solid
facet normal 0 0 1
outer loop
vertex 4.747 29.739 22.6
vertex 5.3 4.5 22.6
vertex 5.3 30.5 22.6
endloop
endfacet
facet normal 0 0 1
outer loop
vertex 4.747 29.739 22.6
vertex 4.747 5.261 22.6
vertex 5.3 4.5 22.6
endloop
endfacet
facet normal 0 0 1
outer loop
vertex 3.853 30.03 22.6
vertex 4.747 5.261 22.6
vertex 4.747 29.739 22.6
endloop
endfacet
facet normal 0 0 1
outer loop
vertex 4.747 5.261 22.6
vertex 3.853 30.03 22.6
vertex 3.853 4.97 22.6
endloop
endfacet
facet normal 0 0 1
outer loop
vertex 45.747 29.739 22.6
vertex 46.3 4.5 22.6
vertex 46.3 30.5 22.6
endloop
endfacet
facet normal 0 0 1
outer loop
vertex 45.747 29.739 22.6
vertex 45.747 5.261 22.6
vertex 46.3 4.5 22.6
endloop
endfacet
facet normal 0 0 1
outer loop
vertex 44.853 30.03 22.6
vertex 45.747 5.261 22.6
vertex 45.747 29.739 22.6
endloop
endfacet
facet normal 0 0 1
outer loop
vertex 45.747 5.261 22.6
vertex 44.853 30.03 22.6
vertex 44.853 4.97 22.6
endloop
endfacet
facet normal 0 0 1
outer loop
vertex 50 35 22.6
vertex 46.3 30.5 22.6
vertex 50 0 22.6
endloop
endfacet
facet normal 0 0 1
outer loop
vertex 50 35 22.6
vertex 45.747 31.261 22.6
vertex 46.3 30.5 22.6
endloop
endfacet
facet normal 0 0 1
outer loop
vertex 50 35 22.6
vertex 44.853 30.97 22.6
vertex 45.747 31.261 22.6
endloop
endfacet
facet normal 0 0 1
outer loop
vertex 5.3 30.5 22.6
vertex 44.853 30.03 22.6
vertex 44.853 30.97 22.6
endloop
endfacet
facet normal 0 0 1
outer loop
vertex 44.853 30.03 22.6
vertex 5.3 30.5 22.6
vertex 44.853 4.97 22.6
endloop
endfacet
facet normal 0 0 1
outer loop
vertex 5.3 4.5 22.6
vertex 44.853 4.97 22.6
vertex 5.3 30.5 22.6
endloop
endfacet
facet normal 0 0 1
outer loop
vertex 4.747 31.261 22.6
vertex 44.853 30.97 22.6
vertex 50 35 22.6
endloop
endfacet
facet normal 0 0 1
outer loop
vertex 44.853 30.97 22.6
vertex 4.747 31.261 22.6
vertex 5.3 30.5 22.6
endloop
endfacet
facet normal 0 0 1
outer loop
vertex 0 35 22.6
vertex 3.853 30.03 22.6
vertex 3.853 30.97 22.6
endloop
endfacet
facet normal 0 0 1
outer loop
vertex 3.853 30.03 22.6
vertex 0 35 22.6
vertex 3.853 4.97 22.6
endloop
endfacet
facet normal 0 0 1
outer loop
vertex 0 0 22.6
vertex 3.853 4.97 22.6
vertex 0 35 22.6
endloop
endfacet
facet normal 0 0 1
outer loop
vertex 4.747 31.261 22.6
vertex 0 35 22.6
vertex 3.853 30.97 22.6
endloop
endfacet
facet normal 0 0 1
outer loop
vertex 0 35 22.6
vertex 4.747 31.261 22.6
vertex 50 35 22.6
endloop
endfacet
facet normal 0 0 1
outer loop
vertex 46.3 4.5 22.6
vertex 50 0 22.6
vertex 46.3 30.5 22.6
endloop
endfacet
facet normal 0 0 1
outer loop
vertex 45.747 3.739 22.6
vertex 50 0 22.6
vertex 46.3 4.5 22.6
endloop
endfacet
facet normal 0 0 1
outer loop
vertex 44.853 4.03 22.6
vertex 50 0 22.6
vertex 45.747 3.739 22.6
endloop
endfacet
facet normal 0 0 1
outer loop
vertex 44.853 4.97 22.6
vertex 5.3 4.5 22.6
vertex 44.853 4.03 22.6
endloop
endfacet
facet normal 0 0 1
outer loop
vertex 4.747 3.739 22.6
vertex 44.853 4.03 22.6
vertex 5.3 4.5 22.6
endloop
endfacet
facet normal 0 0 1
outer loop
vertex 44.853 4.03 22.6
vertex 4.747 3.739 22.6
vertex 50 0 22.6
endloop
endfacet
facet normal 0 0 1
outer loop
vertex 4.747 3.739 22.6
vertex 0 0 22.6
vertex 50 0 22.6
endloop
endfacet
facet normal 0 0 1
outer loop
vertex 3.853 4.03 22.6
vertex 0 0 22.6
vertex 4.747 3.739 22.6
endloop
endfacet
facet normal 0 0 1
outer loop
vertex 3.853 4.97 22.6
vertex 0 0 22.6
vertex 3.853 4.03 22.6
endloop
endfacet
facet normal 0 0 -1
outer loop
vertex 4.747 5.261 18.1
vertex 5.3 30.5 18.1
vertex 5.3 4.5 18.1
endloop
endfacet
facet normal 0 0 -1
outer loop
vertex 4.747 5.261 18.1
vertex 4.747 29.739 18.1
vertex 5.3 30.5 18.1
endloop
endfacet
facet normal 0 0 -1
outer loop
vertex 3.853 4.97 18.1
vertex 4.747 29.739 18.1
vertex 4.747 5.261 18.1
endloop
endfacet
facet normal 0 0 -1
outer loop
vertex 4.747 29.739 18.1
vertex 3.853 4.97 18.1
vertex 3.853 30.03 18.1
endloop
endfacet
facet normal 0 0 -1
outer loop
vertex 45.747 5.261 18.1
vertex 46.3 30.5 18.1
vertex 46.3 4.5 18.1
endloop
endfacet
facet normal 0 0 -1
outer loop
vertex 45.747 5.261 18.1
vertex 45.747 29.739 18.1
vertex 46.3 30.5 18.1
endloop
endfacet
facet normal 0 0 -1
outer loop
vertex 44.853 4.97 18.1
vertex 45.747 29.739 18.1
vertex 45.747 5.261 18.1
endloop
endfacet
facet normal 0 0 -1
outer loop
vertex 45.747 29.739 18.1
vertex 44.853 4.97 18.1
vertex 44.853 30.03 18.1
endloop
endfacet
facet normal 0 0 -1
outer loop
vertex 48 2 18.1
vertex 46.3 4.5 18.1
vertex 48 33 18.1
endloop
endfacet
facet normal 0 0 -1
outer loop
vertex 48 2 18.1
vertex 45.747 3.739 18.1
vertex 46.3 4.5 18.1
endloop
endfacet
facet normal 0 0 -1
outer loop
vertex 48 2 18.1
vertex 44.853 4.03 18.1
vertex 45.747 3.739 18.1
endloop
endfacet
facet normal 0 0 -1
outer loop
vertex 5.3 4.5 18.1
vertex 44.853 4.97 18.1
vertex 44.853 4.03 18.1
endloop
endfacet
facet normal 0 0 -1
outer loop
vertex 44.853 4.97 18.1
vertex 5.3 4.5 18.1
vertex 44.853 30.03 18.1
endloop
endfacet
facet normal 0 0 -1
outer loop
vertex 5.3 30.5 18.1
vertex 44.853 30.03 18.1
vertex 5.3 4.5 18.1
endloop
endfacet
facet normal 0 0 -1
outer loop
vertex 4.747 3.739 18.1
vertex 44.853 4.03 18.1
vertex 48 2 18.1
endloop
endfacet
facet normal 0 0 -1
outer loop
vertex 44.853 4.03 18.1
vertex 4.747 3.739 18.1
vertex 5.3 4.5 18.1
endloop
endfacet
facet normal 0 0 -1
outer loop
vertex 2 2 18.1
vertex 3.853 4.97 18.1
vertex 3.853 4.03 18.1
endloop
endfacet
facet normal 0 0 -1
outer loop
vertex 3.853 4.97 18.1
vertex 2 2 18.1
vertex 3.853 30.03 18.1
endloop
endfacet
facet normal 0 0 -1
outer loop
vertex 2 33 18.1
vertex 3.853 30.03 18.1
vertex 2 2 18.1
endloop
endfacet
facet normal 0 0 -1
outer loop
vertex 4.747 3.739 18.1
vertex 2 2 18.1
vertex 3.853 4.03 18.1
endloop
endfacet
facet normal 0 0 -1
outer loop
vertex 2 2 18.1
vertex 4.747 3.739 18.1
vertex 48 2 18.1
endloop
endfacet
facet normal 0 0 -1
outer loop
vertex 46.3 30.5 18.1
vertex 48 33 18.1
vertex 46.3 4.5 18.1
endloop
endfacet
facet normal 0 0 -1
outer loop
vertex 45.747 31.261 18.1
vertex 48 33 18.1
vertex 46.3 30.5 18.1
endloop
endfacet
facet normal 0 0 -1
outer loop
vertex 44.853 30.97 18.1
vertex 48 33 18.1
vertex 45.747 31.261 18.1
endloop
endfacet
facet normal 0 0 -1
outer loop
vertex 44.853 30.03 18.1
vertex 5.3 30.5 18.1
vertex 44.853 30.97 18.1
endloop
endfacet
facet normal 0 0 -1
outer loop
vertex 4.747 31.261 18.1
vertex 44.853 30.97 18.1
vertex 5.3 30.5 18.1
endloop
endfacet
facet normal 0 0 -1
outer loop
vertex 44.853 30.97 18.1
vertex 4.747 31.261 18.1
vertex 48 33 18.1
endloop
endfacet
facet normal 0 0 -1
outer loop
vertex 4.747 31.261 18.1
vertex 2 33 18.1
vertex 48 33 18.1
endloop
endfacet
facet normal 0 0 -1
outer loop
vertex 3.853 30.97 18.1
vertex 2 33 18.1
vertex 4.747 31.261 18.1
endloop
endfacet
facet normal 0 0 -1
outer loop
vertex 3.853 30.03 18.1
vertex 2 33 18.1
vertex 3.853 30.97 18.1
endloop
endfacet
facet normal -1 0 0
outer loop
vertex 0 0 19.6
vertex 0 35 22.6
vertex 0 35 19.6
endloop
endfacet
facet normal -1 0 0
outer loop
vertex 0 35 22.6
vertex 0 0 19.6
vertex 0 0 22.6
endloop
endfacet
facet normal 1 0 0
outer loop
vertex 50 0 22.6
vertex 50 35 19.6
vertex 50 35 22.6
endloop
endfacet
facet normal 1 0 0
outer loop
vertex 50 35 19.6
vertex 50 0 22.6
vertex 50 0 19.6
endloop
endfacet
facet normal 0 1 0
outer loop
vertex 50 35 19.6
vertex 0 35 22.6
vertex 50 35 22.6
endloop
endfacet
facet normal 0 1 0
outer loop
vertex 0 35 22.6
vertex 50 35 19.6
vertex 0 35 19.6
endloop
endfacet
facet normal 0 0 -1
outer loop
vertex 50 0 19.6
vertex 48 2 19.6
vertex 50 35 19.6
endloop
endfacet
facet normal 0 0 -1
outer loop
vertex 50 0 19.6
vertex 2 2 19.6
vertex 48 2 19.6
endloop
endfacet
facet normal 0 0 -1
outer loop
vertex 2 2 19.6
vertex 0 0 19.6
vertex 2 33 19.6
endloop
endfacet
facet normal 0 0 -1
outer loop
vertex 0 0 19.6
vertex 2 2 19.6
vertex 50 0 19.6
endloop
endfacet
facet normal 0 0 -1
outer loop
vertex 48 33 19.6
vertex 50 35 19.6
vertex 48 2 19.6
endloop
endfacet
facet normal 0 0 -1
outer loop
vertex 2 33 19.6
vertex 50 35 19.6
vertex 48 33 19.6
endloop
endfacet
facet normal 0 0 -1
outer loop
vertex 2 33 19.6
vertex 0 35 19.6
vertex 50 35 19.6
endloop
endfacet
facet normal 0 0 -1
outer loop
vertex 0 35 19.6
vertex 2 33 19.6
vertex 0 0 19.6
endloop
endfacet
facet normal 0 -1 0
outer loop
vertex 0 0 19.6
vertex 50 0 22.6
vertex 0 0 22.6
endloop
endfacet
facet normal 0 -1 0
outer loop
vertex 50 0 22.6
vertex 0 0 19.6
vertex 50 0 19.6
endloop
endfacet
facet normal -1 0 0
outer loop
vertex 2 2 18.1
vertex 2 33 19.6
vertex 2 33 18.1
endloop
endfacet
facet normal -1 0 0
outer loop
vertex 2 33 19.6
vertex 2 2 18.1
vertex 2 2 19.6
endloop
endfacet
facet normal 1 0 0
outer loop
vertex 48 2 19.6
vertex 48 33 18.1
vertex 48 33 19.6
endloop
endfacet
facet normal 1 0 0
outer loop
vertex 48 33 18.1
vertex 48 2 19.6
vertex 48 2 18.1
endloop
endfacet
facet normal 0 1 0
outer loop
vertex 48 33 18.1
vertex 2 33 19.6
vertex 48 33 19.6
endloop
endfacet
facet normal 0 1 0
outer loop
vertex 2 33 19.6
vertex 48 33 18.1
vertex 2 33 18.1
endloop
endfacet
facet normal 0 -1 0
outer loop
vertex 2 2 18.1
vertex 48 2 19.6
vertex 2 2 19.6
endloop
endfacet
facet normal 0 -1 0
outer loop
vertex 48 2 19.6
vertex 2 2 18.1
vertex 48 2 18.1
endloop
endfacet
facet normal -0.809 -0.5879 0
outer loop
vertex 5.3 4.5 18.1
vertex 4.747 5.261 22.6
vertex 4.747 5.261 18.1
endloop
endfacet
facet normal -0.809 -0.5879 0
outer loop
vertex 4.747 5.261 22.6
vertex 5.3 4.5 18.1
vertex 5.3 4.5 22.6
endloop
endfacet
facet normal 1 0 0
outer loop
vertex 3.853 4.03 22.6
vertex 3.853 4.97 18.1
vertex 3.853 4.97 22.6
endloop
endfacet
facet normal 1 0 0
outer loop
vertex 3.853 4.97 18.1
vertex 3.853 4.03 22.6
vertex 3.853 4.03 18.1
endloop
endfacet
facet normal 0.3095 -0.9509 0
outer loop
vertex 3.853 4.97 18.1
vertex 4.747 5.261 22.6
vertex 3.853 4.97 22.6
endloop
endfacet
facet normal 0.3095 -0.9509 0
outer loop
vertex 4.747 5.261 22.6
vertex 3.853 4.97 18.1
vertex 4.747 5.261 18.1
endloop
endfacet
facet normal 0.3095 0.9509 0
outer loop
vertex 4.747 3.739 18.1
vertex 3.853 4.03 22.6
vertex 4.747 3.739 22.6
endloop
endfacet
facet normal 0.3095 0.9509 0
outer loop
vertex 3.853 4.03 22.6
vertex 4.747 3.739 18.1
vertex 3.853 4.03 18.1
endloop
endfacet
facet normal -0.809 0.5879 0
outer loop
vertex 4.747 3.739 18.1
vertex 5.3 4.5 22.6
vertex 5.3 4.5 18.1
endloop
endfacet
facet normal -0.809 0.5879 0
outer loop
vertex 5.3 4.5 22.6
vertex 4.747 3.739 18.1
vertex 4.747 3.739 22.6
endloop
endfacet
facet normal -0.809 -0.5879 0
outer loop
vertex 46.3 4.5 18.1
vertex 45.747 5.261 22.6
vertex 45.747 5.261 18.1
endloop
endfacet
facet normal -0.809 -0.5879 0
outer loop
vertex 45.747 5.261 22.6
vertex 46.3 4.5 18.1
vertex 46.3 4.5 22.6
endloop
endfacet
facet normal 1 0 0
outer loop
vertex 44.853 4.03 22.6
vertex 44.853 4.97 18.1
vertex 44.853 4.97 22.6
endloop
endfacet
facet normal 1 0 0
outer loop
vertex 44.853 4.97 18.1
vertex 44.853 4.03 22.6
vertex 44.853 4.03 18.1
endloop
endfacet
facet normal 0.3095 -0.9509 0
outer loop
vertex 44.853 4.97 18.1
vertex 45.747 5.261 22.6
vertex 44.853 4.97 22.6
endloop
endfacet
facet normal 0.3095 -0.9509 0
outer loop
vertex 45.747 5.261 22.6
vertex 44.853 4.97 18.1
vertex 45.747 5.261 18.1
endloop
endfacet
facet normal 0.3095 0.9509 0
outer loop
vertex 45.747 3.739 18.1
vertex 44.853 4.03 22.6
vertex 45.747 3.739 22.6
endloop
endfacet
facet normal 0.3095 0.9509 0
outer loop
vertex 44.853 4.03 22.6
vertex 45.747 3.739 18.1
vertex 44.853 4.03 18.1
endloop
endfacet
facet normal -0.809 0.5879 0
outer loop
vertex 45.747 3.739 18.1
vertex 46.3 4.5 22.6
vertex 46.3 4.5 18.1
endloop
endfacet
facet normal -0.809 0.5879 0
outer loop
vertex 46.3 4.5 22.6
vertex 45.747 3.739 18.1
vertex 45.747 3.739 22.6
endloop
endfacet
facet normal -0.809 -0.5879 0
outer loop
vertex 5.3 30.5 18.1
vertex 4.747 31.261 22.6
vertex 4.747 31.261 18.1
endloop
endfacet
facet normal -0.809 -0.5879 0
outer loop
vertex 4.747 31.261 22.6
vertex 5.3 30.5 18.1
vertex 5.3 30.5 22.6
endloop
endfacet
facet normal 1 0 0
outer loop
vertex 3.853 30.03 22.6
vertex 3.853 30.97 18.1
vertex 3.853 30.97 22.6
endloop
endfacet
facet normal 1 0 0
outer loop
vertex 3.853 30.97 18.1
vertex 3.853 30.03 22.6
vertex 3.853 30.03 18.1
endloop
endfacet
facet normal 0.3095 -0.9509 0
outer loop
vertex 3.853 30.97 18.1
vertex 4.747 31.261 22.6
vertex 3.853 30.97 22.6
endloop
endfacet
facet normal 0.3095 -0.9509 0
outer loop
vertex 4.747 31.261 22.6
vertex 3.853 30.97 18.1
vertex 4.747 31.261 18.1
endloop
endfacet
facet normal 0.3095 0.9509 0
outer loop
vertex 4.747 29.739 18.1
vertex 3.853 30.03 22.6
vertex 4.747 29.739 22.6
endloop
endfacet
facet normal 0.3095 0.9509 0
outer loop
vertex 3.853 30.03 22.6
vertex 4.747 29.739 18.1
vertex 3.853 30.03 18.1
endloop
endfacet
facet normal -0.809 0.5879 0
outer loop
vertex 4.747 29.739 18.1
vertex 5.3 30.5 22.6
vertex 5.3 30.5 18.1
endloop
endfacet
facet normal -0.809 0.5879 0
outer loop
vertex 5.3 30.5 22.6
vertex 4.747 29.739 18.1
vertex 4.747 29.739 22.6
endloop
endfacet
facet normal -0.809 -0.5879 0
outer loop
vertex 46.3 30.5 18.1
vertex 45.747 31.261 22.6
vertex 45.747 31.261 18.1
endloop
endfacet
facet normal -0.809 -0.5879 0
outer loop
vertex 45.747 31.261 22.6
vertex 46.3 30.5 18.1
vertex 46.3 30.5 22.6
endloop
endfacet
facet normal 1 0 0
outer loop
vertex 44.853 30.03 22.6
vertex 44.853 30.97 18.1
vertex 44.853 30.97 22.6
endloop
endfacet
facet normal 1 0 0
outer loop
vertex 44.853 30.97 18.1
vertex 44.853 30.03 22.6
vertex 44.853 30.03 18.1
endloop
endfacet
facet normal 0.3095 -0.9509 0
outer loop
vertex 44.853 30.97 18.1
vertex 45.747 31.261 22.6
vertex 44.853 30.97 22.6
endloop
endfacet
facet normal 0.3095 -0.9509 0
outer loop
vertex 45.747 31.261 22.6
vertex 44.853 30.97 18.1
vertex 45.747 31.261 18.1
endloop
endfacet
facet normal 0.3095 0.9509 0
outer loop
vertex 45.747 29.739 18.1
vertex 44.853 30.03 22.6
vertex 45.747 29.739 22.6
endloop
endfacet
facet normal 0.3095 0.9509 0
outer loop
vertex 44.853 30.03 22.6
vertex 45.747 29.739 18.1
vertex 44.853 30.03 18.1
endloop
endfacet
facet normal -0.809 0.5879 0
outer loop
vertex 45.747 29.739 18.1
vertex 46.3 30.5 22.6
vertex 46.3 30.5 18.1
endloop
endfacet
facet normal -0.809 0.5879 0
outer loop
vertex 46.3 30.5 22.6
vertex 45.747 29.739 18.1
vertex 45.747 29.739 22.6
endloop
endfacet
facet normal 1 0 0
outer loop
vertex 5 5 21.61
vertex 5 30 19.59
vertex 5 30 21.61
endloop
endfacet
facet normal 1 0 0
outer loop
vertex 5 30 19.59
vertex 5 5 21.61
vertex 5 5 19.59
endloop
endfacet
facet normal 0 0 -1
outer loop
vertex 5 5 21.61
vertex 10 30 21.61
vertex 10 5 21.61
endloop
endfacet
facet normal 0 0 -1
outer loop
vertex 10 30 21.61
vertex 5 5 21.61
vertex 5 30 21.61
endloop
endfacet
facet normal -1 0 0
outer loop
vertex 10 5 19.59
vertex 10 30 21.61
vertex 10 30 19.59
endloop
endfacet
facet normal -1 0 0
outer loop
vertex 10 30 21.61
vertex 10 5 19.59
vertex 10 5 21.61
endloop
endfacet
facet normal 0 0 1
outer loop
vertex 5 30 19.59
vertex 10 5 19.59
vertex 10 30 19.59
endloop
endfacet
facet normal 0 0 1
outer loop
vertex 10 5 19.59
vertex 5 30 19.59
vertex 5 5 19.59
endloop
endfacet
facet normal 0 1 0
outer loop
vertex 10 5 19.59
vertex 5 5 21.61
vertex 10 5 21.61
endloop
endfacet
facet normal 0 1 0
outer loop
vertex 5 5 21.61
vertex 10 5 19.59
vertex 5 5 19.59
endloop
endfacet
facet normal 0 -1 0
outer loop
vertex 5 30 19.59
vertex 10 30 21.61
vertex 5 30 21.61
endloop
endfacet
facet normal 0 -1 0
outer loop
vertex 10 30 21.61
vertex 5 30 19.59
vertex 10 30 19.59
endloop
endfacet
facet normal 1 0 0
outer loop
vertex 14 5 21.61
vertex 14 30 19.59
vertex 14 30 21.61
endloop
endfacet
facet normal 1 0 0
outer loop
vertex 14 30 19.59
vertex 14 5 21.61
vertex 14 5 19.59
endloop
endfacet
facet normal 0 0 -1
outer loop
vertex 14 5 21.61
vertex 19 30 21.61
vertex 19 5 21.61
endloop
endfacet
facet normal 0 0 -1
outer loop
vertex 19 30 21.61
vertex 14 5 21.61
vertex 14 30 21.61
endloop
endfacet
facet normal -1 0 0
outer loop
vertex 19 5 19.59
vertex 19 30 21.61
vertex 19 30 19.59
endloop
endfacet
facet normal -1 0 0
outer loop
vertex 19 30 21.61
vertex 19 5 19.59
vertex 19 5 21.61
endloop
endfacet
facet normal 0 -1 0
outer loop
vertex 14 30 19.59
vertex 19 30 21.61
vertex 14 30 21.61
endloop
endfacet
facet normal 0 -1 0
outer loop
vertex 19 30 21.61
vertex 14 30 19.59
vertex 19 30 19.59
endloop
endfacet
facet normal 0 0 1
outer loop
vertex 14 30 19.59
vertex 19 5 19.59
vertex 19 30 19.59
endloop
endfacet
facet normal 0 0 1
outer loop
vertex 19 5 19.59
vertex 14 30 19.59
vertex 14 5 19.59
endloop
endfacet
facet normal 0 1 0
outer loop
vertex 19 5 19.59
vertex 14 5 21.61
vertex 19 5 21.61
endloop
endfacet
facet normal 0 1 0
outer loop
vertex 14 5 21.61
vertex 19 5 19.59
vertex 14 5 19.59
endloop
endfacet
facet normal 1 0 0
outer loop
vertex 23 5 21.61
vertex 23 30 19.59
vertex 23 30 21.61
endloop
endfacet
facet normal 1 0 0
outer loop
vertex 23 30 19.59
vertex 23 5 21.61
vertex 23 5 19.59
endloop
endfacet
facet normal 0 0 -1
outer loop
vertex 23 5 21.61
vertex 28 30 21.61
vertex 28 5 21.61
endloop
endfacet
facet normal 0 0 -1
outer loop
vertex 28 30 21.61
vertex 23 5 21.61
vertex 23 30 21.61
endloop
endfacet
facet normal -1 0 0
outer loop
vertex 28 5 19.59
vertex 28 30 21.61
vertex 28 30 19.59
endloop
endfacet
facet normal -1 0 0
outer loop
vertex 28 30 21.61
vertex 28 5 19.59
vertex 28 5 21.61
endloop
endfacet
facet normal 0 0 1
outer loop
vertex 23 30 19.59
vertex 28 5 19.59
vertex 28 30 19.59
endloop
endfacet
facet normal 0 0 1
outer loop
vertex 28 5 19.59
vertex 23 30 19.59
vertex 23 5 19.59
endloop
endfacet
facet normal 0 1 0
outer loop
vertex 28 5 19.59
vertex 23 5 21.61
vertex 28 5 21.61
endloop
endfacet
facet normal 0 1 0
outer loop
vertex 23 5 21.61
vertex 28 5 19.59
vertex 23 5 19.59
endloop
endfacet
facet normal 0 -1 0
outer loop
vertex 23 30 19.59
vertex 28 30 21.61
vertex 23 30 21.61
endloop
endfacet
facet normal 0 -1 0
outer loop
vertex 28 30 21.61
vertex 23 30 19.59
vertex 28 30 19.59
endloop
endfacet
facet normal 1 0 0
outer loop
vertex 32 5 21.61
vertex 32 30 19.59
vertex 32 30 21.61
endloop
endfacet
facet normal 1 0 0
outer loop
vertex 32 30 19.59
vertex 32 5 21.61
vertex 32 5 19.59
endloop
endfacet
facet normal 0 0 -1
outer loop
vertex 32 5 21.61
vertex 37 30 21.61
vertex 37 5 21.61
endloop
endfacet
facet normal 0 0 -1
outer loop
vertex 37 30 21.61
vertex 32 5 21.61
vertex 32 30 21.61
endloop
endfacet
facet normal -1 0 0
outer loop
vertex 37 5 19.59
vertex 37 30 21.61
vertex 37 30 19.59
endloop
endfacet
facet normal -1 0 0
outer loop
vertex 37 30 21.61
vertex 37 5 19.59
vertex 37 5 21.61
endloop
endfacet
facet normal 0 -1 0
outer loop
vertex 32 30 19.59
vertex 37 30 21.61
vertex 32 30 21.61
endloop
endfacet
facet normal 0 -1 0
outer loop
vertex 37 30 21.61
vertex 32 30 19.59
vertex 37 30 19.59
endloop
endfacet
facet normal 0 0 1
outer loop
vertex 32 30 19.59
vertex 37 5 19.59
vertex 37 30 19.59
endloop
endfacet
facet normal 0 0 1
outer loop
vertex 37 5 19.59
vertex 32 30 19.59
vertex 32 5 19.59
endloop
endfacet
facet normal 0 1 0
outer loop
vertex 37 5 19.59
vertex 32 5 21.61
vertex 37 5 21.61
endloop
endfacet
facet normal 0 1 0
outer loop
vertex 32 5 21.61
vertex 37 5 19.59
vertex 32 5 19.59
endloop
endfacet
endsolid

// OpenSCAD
difference() {
	union() {
		translate(v = [0, 0, 19.6]) {
			cube(size = [50.0, 35.0, 3.0]);
		}
		translate(v = [2.0, 2.0, 18.1]) {
			cube(size = [46.0, 31.0, 4.5]);
		}
		union() {
			translate(v = [4.5, 4.5, 18.1]) {
				cylinder(h = 4.5, r = 2.0);
			}
			translate(v = [45.5, 4.5, 18.1]) {
				cylinder(h = 4.5, r = 2.0);
			}
			translate(v = [4.5, 30.5, 18.1]) {
				cylinder(h = 4.5, r = 2.0);
			}
			translate(v = [45.5, 30.5, 18.1]) {
				cylinder(h = 4.5, r = 2.0);
			}
		}
	}
	union() {
		translate(v = [4.5, 4.5, 18.1]) {
			cylinder(h = 5.5, r = 0.8);
		}
		translate(v = [45.5, 4.5, 18.1]) {
			cylinder(h = 5.5, r = 0.8);
		}
		translate(v = [4.5, 30.5, 18.1]) {
			cylinder(h = 5.5, r = 0.8);
		}
		translate(v = [45.5, 30.5, 18.1]) {
			cylinder(h = 5.5, r = 0.8);
		}
	}
	union() {
		union() {
			union() {
				union() {
					union();
					translate(v = [5.0, 5.0, 19.59]) {
						cube(size = [5, 25.0, 2.02]);
					}
				}
				translate(v = [14.0, 5.0, 19.59]) {
					cube(size = [5, 25.0, 2.02]);
				}
			}
			translate(v = [23.0, 5.0, 19.59]) {
				cube(size = [5, 25.0, 2.02]);
			}
		}
		translate(v = [32.0, 5.0, 19.59]) {
			cube(size = [5, 25.0, 2.02]);
		}
	}
}
